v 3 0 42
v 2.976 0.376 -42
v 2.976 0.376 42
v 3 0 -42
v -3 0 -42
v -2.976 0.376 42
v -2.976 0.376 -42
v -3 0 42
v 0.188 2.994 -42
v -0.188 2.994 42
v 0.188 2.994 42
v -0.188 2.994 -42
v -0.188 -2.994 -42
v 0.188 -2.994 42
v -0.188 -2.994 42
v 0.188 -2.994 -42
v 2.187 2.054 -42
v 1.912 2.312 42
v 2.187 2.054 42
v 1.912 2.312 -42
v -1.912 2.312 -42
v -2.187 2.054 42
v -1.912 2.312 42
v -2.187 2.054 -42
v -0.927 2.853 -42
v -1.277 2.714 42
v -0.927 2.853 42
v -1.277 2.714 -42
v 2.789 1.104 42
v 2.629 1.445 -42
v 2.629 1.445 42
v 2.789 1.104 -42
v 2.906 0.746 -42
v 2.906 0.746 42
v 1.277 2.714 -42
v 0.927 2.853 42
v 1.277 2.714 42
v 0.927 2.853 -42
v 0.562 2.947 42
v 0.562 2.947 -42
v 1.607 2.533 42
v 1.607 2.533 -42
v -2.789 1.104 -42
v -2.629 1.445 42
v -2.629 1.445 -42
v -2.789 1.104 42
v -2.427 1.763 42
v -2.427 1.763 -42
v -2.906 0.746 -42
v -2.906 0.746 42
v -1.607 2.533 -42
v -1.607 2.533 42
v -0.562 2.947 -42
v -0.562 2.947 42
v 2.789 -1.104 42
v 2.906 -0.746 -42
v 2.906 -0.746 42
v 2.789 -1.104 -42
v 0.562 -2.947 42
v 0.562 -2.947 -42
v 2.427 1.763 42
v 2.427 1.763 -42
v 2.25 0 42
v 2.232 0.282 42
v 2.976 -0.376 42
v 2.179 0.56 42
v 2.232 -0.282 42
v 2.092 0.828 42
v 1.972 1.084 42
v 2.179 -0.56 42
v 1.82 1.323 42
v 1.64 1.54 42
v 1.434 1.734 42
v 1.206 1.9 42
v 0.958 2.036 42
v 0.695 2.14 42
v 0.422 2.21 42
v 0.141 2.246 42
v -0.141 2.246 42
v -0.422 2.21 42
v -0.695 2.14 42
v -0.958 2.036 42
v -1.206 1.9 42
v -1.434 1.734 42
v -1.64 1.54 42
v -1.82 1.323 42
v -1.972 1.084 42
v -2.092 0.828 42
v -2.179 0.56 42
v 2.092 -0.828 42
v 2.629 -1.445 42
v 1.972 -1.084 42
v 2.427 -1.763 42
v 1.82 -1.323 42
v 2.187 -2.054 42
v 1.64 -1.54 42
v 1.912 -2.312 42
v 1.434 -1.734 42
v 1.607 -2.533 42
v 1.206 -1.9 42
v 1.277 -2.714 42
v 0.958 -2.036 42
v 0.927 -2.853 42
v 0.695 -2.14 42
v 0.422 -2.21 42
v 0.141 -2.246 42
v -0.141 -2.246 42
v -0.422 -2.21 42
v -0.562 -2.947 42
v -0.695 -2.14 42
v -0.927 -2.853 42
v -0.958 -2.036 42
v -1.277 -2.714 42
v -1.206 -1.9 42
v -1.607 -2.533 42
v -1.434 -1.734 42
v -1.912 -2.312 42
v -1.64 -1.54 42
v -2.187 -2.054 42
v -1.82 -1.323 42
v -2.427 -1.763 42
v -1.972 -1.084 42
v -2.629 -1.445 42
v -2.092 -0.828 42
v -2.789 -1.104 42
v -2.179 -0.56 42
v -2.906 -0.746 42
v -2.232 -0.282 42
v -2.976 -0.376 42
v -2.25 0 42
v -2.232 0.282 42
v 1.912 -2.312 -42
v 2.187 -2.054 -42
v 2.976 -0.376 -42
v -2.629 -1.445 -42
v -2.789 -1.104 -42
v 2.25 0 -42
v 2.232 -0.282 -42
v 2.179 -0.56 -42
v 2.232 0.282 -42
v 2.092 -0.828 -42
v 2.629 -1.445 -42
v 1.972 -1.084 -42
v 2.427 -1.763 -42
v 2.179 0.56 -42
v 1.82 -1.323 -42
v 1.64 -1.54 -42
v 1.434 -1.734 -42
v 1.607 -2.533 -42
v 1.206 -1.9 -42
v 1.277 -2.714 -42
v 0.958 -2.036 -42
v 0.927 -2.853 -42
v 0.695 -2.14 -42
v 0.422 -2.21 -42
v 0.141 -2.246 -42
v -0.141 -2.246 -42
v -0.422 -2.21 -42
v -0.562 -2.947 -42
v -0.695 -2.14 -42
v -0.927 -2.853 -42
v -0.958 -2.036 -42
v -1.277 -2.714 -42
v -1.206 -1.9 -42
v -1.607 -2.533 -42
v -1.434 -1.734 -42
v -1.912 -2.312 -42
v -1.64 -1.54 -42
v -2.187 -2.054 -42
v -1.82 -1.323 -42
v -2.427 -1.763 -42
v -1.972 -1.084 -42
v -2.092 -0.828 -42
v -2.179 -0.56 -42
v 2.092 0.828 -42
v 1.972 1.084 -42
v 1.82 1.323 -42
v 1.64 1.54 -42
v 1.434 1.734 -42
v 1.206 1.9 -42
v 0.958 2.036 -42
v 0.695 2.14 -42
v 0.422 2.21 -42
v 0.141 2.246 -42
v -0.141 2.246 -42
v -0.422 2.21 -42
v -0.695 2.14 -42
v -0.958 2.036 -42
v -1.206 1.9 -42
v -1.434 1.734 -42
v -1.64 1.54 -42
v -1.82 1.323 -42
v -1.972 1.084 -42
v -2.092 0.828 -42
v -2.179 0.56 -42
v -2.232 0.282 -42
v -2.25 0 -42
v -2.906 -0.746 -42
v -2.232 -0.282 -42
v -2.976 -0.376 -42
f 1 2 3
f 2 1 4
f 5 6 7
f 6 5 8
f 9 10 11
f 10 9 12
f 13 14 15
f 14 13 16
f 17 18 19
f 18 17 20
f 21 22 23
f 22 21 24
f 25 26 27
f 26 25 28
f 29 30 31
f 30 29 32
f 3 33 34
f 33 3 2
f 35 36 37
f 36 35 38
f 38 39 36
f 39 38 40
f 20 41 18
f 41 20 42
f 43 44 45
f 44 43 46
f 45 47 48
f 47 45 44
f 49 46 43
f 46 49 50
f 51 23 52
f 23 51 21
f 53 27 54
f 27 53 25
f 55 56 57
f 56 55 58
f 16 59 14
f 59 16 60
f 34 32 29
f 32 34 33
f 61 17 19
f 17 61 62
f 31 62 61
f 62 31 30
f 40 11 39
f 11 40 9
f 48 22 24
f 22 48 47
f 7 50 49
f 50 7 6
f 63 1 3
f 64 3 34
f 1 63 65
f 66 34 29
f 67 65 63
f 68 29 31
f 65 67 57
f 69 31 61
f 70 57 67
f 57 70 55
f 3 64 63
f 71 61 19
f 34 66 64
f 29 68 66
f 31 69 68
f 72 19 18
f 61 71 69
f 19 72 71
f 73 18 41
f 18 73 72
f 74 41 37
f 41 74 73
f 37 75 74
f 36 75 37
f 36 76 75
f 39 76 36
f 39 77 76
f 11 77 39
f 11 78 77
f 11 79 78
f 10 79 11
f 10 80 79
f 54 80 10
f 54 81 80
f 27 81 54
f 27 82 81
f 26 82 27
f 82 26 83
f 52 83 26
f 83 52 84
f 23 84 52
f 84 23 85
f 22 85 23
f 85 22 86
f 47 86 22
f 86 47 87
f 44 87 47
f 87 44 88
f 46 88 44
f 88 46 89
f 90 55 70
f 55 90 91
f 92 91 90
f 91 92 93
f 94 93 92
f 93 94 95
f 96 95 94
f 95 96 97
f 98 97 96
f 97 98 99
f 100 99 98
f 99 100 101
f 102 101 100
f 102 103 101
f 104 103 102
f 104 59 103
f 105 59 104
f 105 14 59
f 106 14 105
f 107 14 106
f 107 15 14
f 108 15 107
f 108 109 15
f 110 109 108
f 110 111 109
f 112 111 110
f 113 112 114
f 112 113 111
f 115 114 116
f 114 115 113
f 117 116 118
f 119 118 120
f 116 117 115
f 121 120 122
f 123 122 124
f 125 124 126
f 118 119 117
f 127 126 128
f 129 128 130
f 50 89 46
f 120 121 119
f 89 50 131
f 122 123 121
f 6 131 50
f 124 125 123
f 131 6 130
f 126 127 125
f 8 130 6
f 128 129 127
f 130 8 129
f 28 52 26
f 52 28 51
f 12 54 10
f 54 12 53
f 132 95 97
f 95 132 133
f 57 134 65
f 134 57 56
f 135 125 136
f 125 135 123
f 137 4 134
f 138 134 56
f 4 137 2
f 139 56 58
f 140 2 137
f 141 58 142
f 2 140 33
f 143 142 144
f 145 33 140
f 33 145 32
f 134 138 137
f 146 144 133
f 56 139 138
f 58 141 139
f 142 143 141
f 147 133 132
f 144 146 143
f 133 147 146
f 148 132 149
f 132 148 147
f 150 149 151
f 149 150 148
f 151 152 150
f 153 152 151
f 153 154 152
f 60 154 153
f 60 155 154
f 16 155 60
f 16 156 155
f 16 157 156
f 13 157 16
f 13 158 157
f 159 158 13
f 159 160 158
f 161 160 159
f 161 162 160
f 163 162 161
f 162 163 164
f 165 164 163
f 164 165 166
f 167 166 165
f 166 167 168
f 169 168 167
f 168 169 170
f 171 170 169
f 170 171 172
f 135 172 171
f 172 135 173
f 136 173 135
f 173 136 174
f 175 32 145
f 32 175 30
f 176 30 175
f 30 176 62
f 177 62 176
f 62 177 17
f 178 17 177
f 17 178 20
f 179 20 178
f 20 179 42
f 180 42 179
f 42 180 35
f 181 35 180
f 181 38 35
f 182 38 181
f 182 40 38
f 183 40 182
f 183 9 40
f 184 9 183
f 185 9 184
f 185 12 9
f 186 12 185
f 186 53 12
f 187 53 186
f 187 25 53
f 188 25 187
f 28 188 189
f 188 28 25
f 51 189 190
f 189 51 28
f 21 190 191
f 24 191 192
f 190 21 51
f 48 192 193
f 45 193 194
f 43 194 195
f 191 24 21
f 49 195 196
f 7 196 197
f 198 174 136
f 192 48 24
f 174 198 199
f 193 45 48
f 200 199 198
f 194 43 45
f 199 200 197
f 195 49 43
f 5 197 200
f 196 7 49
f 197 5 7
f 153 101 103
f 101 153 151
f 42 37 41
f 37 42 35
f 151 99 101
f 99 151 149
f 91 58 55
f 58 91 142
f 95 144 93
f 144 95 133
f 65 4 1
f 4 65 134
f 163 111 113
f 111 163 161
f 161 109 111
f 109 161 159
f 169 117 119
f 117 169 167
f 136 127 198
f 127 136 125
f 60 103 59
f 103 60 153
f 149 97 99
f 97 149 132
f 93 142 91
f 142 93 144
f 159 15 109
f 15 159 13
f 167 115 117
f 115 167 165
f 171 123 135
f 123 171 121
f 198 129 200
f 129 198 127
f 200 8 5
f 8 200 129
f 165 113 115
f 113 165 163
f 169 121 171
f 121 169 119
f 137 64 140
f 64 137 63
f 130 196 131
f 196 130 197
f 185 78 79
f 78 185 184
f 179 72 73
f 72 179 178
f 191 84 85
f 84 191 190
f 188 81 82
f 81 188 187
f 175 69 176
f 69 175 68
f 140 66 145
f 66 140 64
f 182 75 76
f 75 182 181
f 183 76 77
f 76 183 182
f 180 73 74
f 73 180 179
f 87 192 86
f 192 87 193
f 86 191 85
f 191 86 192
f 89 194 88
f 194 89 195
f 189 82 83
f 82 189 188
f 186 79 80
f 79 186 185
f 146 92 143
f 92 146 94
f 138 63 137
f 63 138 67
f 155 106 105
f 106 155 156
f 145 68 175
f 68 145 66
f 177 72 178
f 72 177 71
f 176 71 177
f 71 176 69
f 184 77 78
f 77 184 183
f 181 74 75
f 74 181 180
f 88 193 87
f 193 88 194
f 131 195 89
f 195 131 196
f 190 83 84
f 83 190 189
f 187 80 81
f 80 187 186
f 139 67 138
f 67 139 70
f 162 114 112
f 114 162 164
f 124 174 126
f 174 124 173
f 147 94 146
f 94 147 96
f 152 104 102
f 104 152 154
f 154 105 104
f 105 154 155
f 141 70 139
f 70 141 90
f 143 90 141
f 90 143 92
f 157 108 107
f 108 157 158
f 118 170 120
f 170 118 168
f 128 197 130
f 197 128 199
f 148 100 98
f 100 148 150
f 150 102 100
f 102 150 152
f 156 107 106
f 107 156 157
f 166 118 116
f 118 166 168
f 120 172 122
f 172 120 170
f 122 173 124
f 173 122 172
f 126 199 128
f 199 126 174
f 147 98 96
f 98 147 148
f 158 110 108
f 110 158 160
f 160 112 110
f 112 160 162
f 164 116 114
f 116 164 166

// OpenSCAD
$fn = 50;


difference() {
	union() {
		translate(v = [0, 0, -42.0000000000]) {
			cylinder(h = 84, r = 3.0000000000);
		}
	}
	union() {
		translate(v = [0, 0, -100.0000000000]) {
			cylinder(h = 200, r = 2.2500000000);
		}
	}
}
